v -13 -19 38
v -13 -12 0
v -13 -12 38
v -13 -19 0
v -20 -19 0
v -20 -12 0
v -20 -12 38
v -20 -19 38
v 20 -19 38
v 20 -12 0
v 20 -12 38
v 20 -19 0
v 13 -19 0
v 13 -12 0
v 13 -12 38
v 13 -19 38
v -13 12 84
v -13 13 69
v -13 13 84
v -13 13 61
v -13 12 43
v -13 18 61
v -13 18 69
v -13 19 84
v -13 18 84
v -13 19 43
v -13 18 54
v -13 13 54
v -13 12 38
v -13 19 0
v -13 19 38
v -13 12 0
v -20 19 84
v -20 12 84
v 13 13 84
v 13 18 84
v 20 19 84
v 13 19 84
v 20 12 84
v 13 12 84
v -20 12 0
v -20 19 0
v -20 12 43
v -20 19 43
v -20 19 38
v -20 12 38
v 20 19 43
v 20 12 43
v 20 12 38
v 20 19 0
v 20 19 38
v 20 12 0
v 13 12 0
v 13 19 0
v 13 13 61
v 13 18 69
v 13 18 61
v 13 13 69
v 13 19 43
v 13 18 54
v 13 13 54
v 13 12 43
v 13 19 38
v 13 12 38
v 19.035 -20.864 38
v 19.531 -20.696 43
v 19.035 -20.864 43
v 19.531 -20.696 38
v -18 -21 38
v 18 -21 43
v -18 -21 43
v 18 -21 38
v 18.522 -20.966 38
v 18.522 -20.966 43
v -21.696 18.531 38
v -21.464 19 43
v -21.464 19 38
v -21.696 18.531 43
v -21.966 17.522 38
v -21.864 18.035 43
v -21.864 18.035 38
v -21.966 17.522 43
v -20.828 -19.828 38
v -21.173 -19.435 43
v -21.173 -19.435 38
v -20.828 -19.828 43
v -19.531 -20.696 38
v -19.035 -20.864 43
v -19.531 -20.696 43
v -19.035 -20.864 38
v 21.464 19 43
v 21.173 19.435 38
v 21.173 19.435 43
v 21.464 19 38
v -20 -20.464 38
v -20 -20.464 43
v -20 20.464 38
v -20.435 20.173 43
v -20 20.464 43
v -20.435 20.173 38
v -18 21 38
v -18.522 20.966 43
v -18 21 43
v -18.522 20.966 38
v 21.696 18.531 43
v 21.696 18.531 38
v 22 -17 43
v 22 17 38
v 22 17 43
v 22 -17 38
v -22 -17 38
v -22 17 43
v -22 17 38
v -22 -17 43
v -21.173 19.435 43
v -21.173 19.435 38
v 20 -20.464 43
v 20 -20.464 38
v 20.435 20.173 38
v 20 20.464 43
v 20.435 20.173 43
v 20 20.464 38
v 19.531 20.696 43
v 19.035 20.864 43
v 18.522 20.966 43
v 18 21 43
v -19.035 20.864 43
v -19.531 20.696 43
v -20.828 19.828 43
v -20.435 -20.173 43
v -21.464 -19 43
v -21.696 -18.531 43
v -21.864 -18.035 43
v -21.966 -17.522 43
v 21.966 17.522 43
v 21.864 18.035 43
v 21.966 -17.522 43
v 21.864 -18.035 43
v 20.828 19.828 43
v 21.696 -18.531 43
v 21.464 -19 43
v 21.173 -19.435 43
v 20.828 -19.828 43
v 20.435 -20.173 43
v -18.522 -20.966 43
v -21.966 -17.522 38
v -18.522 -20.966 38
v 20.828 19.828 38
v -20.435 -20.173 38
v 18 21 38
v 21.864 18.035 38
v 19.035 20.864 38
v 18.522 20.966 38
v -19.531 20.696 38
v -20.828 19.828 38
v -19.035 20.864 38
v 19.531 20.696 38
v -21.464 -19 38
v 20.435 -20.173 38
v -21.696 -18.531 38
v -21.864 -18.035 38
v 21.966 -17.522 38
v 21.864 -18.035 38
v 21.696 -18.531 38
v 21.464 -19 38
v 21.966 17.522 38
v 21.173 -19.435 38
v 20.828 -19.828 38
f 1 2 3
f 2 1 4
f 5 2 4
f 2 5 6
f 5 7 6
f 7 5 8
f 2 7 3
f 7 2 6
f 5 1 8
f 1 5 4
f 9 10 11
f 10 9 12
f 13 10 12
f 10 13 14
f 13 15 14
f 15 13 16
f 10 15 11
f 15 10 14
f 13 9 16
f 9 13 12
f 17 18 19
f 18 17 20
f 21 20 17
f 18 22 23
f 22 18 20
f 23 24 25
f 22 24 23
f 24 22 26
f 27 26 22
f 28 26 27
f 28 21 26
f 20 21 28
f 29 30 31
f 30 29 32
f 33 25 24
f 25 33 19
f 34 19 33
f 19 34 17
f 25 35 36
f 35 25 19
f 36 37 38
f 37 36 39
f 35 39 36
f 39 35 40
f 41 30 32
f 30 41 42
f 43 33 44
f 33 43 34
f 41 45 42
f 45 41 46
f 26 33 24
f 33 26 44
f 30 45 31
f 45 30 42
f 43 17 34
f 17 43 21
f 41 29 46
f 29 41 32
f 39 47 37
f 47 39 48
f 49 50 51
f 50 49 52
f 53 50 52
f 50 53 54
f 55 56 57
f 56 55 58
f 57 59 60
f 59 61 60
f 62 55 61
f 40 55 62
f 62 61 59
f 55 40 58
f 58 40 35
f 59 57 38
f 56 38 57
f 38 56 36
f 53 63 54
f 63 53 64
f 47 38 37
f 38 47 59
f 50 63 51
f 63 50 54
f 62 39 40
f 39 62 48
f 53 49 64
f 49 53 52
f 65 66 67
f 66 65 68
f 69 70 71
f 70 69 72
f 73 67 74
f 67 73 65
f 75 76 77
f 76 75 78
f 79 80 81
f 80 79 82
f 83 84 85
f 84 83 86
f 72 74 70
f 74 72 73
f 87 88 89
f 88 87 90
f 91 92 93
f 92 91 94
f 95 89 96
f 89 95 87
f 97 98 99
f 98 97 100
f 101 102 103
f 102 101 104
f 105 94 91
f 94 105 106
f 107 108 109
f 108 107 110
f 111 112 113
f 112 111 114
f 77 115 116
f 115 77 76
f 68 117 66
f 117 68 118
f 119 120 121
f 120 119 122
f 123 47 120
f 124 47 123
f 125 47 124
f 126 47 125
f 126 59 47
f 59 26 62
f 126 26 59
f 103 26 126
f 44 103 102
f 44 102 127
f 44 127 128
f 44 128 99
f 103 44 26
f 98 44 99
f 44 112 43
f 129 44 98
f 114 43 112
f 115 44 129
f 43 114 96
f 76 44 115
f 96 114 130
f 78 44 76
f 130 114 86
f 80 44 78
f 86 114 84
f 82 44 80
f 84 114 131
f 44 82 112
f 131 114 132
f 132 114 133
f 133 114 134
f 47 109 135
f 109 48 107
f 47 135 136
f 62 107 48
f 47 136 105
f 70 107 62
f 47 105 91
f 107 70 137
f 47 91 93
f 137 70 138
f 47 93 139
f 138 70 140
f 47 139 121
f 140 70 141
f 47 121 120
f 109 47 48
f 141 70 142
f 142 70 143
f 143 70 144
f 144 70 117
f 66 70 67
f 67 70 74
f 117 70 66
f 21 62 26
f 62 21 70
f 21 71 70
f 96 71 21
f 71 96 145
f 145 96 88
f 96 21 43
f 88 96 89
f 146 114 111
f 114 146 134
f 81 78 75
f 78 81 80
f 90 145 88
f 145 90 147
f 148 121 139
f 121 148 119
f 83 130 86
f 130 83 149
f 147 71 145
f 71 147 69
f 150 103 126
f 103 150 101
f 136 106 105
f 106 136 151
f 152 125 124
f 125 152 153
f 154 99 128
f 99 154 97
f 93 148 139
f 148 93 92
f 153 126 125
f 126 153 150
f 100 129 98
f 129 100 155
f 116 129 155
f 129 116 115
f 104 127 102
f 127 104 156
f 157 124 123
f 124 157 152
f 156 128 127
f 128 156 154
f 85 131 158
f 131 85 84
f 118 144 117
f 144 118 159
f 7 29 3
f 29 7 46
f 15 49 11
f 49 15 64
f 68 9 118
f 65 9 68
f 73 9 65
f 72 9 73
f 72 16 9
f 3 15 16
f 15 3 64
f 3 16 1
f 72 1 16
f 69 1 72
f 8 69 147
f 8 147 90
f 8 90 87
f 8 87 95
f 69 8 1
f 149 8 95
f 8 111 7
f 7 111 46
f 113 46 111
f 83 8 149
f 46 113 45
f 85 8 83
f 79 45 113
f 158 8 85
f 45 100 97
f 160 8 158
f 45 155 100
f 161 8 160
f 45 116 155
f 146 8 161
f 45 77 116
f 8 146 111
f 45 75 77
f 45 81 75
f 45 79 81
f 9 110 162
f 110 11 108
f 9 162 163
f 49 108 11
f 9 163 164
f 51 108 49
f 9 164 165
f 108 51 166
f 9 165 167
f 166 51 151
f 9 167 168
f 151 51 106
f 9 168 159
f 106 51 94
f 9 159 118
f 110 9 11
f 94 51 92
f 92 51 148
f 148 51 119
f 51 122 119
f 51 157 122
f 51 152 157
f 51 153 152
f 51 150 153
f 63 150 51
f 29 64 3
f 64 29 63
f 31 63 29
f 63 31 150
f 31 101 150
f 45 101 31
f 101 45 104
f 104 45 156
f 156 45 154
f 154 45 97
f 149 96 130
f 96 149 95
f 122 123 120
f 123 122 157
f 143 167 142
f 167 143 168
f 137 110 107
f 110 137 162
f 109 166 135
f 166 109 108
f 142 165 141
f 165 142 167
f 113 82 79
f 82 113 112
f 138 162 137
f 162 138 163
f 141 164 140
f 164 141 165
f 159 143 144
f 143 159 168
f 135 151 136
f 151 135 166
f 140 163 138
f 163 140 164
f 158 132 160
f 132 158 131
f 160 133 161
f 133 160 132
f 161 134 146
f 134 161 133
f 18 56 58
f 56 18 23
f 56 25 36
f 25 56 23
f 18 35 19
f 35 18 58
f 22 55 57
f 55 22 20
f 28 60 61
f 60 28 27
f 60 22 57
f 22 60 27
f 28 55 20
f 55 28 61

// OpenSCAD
// 迷你靠背椅（与 table_model.scad 配套，默认约 1:10 比例）
// 所有尺寸单位：毫米（mm）。可以修改参数后重新导出 STL。
$fn = 48;

CHAIR_WIDTH = 44;
CHAIR_DEPTH = 42;
CHAIR_TOTAL_HEIGHT = 84;
SEAT_TOP_HEIGHT = 43;
SEAT_THICKNESS = 5;
SEAT_CORNER_RADIUS = 4;
LEG_SIZE = 7;
LEG_INSET = 2;
BACKREST_THICKNESS = 5;
BACKREST_TOP_HEIGHT = 84;
BACKREST_BAND_HEIGHT = 15;
LOWER_SLAT_BASE_HEIGHT = 54;
LOWER_SLAT_HEIGHT = 7;

module rounded_plate(w, d, thickness, r) {
    linear_extrude(height = thickness)
        offset(r = r)
            square([w - 2*r, d - 2*r], center = true);
}

module miniature_chair() {
    seat_base_z = SEAT_TOP_HEIGHT - SEAT_THICKNESS;
    post_x = CHAIR_WIDTH/2 - LEG_INSET - LEG_SIZE/2;
    post_y = CHAIR_DEPTH/2 - LEG_INSET - LEG_SIZE/2;
    union() {
        // 平整圆角坐板
        translate([0, 0, seat_base_z])
            rounded_plate(CHAIR_WIDTH, CHAIR_DEPTH, SEAT_THICKNESS, SEAT_CORNER_RADIUS);
        // 前腿，进入坐板 2 mm
        for (x = [-post_x, post_x])
            translate([x, -post_y, (seat_base_z + 2)/2])
                cube([LEG_SIZE, LEG_SIZE, seat_base_z + 2], center = true);
        // 后腿向上延伸为靠背立柱
        for (x = [-post_x, post_x])
            translate([x, post_y, CHAIR_TOTAL_HEIGHT/2])
                cube([LEG_SIZE, LEG_SIZE, CHAIR_TOTAL_HEIGHT], center = true);
        // 宽上靠背板，与两端立柱有搭接
        translate([0, post_y, BACKREST_TOP_HEIGHT - BACKREST_BAND_HEIGHT/2])
            cube([2*post_x + 2, BACKREST_THICKNESS, BACKREST_BAND_HEIGHT], center = true);
        // 下靠背横条
        translate([0, post_y, LOWER_SLAT_BASE_HEIGHT + LOWER_SLAT_HEIGHT/2])
            cube([2*post_x + 2, BACKREST_THICKNESS, LOWER_SLAT_HEIGHT], center = true);
    }
}

miniature_chair();
